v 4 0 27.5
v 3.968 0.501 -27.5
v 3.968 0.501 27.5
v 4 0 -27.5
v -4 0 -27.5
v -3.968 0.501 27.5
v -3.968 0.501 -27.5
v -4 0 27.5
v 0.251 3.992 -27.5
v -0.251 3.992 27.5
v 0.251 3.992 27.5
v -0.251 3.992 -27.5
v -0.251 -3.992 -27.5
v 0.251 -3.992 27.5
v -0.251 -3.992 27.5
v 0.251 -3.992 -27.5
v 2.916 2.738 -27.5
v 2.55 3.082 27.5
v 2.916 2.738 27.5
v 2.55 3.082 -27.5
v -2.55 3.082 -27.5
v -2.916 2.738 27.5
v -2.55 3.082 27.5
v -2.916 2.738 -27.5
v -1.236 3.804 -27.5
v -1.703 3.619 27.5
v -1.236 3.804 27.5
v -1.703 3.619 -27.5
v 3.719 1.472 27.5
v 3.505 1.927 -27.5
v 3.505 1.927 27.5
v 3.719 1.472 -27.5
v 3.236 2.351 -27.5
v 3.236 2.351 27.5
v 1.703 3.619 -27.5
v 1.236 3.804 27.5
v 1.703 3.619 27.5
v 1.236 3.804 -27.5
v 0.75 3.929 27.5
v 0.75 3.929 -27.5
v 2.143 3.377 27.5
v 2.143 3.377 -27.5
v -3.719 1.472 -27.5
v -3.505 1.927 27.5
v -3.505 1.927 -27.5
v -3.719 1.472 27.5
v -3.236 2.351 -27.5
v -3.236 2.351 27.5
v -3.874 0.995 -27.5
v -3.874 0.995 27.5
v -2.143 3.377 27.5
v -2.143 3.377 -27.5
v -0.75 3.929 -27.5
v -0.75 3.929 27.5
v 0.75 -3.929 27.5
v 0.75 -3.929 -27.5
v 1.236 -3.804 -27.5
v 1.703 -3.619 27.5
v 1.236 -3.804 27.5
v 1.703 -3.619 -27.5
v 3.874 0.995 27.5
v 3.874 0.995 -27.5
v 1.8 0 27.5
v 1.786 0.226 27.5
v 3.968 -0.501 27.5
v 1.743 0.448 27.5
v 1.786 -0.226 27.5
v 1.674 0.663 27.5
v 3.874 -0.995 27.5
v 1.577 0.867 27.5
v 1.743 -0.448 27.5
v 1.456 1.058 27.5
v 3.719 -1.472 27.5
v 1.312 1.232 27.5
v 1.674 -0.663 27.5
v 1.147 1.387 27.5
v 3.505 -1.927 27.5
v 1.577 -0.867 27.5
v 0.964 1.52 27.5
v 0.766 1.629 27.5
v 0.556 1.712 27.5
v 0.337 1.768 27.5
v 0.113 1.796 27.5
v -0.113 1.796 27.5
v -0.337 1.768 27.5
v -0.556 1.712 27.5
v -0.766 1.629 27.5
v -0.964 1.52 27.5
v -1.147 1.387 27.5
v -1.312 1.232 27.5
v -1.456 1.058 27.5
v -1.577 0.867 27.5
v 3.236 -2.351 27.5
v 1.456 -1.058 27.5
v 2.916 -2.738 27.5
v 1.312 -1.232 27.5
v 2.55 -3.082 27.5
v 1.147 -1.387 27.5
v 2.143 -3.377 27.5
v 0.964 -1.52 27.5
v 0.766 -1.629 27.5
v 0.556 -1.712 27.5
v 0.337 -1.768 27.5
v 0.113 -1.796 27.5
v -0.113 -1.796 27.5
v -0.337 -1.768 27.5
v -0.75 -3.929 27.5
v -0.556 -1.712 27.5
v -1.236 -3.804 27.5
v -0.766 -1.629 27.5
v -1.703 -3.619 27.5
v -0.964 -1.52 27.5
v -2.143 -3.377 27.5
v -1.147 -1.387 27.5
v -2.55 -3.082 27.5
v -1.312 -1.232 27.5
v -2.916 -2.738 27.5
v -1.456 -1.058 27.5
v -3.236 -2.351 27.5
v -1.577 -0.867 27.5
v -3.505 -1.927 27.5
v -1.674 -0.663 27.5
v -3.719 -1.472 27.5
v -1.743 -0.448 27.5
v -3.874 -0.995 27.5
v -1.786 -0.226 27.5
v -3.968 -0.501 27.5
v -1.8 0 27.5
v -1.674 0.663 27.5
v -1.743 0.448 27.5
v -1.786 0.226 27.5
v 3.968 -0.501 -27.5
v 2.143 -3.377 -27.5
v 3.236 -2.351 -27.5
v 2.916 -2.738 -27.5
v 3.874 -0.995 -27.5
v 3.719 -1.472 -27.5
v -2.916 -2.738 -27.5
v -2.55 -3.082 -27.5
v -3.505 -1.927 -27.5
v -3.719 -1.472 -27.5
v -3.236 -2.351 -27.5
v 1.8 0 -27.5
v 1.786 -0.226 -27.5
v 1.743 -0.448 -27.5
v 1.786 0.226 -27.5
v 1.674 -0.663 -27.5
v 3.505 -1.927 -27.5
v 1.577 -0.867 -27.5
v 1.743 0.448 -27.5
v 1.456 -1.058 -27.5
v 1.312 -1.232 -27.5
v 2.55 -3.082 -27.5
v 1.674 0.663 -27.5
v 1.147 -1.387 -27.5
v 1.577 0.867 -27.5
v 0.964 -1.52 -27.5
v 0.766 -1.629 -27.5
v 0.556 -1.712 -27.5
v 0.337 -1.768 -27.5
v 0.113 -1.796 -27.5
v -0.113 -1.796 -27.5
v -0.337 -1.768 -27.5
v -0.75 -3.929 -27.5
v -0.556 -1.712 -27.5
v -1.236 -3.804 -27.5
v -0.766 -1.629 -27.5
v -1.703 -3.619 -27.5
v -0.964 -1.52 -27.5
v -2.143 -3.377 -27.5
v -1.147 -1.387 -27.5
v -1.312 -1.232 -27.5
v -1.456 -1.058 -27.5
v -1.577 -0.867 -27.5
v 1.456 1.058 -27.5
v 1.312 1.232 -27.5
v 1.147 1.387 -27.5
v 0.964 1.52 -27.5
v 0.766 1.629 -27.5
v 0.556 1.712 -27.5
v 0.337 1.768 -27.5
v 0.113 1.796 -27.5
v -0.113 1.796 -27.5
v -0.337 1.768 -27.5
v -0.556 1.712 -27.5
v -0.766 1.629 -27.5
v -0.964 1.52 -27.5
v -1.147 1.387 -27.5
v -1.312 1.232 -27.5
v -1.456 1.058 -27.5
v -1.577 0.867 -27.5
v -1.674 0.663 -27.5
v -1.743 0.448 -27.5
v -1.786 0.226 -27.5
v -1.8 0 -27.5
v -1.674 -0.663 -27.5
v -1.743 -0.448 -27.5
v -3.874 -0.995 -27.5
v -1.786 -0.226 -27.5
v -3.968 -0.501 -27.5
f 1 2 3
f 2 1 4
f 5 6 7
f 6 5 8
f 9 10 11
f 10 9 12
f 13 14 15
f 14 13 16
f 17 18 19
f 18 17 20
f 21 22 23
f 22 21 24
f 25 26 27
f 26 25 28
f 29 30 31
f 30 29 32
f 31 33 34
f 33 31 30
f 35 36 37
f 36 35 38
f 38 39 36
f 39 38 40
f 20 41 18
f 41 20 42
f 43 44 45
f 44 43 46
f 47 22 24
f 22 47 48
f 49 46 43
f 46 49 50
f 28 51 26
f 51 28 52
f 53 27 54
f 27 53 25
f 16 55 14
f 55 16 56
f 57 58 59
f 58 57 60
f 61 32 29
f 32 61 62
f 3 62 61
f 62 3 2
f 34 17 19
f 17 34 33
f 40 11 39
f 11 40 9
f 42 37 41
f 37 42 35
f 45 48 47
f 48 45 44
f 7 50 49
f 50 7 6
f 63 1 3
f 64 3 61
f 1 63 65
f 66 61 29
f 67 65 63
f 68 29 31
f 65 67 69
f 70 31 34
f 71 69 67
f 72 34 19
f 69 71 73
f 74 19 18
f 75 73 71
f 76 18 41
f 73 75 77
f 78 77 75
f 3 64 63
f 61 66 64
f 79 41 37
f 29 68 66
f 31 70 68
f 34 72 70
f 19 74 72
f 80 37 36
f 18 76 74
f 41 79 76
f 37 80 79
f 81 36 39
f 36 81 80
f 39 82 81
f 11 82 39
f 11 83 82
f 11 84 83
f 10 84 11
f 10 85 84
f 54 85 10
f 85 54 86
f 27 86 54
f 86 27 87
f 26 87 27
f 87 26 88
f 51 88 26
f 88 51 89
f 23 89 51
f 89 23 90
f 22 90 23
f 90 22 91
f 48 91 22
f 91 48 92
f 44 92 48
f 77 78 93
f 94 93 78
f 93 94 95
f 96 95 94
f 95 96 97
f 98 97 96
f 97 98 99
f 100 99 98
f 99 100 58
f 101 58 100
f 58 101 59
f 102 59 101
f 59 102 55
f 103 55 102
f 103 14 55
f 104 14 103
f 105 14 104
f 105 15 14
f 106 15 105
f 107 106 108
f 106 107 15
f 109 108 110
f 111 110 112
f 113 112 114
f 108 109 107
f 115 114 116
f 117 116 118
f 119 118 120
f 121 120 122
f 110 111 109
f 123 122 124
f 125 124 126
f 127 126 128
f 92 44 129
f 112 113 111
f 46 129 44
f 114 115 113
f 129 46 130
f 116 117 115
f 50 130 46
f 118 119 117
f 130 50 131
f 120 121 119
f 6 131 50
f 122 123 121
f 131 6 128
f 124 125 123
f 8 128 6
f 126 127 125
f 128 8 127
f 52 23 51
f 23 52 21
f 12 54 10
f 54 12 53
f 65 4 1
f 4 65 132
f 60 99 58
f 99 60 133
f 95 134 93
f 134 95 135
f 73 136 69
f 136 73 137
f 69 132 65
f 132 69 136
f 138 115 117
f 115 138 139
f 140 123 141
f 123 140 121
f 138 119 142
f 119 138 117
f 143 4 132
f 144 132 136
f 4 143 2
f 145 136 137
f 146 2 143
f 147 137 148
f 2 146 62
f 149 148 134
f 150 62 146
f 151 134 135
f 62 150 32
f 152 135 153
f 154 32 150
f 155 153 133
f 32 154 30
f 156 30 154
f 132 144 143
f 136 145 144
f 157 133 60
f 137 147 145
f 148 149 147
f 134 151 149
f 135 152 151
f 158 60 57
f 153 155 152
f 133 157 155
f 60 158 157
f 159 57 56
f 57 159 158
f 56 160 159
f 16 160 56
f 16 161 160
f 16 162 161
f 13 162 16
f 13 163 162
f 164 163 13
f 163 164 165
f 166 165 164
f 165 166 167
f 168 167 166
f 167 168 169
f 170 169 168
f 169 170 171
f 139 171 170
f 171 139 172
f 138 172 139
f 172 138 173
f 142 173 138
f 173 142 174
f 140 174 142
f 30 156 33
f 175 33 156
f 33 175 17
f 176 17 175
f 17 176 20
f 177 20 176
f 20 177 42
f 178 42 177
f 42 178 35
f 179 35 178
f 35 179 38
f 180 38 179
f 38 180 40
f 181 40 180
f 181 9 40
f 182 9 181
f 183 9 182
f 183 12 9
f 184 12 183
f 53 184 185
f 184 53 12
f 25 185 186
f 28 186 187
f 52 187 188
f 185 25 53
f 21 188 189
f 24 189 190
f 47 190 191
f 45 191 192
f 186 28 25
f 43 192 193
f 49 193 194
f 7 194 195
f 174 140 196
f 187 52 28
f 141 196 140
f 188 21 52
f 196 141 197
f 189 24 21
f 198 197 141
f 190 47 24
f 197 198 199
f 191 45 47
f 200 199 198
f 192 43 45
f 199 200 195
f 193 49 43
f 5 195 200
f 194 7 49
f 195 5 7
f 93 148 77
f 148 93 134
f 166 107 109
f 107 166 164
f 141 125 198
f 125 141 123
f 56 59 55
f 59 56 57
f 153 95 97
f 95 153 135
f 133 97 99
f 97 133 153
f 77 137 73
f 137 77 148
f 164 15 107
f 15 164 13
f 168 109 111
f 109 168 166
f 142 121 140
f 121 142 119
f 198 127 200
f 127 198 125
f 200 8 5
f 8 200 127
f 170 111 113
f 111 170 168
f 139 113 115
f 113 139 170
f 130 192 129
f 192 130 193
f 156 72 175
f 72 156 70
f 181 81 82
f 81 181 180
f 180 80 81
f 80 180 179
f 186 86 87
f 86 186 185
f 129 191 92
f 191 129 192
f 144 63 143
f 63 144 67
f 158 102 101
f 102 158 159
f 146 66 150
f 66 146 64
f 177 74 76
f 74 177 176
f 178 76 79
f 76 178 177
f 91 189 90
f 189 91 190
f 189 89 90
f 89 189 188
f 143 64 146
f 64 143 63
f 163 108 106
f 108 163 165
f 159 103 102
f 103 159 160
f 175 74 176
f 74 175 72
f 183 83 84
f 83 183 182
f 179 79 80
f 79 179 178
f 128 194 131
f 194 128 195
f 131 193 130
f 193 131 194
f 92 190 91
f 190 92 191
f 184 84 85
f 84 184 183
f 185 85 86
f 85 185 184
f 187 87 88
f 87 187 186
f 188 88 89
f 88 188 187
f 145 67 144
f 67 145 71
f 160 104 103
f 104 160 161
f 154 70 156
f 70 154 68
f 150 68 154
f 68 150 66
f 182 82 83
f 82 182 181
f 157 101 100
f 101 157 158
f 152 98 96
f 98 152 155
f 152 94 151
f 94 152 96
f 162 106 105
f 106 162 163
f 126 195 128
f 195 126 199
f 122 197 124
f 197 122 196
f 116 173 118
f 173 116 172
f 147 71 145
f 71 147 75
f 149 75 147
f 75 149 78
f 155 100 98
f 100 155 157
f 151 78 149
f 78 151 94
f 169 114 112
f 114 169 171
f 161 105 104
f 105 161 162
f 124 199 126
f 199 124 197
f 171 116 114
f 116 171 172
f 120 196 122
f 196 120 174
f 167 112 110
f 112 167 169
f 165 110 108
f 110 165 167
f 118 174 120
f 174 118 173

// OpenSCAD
$fn = 50;


difference() {
	union() {
		translate(v = [0, 0, -27.5000000000]) {
			cylinder(h = 55, r = 4.0000000000);
		}
	}
	union() {
		translate(v = [0, 0, -100.0000000000]) {
			cylinder(h = 200, r = 1.8000000000);
		}
	}
}
